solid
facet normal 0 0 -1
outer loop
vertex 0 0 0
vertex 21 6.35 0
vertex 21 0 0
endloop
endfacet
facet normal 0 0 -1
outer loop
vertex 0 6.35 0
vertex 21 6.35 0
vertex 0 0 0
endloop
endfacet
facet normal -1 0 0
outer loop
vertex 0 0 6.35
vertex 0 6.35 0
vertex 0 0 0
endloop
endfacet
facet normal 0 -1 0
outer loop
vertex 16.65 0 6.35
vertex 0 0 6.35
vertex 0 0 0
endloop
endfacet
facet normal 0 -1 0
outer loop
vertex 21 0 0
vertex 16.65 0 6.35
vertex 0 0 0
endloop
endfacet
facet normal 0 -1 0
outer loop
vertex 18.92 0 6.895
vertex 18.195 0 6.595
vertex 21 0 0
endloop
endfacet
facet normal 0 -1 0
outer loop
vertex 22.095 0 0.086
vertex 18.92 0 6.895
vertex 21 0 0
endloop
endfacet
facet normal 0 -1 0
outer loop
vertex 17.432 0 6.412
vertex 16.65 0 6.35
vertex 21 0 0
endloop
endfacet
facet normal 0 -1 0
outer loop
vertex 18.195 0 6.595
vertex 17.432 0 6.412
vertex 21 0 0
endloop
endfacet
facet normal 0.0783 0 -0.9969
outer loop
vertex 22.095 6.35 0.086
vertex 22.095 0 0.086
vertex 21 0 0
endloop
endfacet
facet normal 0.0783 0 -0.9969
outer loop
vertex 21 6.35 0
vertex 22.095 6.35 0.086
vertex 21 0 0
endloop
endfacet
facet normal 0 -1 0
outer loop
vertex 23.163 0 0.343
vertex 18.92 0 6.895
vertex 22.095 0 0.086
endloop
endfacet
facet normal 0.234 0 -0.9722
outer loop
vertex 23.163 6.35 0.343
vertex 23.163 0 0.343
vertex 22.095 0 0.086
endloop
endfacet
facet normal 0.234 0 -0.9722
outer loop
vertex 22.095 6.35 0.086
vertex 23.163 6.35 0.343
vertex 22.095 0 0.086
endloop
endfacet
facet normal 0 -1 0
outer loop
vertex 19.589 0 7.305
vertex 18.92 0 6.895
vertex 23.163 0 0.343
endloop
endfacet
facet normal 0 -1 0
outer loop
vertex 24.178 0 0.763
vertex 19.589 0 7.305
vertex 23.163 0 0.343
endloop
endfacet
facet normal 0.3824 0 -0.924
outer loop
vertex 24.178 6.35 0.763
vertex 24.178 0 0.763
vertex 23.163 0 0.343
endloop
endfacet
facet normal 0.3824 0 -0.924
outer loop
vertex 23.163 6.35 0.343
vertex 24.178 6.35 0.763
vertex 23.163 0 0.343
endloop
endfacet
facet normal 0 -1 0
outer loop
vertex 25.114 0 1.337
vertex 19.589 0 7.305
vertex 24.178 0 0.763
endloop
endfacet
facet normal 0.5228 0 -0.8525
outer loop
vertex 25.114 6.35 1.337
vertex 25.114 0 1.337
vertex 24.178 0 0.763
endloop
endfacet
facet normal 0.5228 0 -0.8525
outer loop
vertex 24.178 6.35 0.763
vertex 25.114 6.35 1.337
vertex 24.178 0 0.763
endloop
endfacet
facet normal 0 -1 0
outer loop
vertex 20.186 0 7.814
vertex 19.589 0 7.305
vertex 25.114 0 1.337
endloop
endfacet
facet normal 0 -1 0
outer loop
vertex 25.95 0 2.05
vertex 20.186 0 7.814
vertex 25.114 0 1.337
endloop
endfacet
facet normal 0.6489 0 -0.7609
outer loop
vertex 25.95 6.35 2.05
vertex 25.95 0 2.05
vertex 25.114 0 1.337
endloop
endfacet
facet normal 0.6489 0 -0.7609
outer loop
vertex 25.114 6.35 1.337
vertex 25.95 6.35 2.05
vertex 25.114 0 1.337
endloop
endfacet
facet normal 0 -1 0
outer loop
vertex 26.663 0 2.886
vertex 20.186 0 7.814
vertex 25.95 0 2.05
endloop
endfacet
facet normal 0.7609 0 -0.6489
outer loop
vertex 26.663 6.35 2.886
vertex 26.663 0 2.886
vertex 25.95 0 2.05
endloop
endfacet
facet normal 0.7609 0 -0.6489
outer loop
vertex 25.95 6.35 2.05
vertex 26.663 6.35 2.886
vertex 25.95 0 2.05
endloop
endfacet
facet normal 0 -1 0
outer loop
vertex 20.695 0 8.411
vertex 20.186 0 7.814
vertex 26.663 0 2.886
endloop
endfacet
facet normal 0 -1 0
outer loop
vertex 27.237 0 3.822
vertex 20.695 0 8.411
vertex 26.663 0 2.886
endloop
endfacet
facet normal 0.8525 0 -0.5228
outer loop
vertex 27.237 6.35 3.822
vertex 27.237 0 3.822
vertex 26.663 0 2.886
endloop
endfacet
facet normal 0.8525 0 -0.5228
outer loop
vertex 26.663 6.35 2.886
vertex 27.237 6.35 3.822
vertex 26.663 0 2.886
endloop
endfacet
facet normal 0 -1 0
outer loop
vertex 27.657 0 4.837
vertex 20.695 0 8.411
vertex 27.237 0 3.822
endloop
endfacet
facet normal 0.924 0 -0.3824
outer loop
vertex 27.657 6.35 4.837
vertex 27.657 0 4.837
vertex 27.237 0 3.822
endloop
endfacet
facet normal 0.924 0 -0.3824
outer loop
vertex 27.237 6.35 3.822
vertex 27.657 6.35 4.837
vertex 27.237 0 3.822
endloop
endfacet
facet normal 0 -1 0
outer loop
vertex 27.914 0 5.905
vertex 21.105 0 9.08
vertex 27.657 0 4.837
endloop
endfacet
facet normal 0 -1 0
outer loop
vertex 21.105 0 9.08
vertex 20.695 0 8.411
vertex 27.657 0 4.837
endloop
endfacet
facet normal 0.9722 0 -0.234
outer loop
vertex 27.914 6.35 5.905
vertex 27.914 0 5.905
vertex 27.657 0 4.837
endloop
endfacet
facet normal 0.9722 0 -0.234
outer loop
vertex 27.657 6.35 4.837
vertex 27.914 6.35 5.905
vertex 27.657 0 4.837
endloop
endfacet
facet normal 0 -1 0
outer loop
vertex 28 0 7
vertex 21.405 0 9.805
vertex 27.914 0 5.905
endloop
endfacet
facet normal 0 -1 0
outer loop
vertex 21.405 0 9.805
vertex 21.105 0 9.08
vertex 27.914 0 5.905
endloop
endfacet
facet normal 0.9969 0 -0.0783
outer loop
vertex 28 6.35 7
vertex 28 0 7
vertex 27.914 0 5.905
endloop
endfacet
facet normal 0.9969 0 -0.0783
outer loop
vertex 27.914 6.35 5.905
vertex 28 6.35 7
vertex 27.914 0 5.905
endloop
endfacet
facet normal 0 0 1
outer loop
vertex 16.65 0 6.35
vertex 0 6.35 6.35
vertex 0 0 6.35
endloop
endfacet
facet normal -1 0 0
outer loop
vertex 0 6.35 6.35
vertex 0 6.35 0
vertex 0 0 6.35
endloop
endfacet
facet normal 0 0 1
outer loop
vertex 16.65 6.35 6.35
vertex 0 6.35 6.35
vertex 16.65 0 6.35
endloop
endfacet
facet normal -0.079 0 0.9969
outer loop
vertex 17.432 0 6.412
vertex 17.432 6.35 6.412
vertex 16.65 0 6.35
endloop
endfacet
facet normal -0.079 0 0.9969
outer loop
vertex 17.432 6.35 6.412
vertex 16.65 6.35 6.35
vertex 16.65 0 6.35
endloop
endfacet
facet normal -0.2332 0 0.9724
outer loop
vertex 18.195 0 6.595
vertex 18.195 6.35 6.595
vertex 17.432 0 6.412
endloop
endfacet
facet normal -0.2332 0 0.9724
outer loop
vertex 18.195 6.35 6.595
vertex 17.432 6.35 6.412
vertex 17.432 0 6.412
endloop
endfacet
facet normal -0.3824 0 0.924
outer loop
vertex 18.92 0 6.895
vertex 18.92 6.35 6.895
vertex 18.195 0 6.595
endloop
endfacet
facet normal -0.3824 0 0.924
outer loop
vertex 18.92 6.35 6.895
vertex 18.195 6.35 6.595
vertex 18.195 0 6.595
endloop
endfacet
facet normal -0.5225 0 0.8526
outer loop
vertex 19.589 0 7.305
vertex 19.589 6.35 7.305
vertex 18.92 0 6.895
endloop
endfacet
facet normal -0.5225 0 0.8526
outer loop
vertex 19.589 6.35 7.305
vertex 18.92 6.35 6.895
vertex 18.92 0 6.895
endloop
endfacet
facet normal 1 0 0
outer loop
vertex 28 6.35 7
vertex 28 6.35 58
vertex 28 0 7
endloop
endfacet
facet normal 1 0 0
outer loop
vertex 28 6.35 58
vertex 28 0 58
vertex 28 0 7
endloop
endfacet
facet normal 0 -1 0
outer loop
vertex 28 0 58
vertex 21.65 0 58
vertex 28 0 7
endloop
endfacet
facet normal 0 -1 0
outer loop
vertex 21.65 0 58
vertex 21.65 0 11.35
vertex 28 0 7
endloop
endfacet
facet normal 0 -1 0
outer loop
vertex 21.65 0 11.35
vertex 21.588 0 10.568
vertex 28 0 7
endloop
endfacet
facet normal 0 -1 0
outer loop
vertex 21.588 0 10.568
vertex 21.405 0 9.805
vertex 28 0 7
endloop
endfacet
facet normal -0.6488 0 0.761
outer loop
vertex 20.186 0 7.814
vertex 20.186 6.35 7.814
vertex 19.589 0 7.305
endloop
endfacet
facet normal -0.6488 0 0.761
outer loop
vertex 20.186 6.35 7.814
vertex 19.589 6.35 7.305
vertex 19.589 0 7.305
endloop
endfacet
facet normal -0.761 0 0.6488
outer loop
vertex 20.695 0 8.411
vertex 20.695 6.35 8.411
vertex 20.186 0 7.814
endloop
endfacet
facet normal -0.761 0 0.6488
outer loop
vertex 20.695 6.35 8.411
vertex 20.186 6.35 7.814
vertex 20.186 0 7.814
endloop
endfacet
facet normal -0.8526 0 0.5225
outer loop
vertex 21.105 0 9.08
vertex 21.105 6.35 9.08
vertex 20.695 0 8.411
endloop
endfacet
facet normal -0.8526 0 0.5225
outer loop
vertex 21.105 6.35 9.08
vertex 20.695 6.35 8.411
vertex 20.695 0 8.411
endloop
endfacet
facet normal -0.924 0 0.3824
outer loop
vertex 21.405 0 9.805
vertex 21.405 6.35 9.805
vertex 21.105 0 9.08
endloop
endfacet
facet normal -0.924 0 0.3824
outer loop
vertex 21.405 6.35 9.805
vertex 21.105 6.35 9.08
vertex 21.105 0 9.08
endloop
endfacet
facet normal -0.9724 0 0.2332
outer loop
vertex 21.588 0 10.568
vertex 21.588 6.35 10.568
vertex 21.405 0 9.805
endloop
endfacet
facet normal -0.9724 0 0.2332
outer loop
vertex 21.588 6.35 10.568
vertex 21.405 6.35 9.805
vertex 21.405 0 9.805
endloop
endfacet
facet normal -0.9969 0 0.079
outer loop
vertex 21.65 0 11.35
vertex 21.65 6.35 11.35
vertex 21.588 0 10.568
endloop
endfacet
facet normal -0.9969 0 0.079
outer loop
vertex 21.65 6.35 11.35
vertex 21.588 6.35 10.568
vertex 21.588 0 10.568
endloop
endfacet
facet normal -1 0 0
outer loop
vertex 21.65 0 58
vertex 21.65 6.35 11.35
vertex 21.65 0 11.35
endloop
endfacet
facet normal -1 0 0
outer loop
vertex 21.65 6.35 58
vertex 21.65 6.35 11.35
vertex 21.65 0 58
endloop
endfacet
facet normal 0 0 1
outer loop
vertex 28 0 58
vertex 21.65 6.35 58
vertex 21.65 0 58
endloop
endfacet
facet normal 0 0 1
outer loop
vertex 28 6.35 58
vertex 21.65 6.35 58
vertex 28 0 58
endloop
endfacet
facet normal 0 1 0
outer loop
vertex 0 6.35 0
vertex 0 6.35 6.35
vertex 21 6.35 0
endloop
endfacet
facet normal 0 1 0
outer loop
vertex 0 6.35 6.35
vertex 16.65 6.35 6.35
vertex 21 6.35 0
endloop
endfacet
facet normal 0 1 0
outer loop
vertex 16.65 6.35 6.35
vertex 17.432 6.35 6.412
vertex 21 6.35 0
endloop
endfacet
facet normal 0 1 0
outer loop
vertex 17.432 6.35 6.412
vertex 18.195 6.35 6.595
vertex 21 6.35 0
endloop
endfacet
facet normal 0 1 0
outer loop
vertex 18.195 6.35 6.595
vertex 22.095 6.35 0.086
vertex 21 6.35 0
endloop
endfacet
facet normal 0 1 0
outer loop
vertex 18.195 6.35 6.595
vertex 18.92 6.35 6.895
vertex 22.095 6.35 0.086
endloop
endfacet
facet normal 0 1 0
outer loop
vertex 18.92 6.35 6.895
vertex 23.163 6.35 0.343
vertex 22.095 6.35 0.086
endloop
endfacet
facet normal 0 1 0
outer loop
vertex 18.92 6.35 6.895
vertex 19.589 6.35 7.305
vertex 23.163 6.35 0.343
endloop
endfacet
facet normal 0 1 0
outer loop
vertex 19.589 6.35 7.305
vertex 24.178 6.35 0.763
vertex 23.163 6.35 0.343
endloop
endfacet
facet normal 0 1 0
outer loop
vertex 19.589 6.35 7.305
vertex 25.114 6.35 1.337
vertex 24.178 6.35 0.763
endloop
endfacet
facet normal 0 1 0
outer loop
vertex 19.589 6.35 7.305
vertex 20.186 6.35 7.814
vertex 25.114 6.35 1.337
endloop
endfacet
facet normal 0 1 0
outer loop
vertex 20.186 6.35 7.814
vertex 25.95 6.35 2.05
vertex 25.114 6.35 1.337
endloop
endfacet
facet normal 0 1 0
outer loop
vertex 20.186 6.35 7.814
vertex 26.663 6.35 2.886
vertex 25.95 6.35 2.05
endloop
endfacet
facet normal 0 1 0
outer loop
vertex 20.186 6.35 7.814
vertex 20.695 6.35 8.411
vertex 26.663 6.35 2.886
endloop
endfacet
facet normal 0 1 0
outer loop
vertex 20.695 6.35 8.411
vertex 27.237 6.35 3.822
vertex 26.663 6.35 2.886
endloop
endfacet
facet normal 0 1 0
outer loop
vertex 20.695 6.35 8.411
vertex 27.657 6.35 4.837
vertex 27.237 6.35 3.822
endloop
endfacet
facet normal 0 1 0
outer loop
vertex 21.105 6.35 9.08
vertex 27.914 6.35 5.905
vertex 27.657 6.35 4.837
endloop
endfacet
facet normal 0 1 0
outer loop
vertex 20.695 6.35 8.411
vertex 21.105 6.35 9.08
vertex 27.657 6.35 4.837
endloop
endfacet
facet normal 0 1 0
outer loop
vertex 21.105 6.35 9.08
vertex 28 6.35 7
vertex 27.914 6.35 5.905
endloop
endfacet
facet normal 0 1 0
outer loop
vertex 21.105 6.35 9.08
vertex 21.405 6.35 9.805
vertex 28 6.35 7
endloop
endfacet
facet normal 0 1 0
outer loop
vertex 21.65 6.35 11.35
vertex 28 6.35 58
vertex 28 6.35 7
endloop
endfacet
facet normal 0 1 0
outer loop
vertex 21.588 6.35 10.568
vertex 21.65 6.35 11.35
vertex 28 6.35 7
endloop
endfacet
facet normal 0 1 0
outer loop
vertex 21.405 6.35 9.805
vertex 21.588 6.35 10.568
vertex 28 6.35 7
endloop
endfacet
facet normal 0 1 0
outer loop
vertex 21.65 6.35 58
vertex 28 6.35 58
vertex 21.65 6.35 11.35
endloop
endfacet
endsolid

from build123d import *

# Parameters (mm, degrees)
SKETCH9_W           = 21.65
SKETCH9_H           = 6.35
SKETCH9_W_2         = 6.35
SKETCH9_H_2         = 51.65
BOSS_EXTRUDE1_DEPTH = 6.35
FILLET2_R           = 5
FILLET3_R           = 7


with BuildPart() as part:
    # Sketch9 → Boss-Extrude1 (new body)
    with BuildSketch(Plane(origin=(0, 0, 0), x_dir=(1, 0, 0), z_dir=(0, 1, 0))):
        with Locations((10.825, -3.175)):
            Rectangle(SKETCH9_W, SKETCH9_H)
        with Locations((24.825, -3.175)):
            Rectangle(SKETCH9_W_2, SKETCH9_H)
        with Locations((24.825, -32.175)):
            Rectangle(SKETCH9_W_2, SKETCH9_H_2)
    extrude(amount=BOSS_EXTRUDE1_DEPTH)

    # Fillet2
    fillet2_edges = [part.edges().sort_by_distance(p)[0] for p in [
        (21.65, 3.175, 6.35),
    ]]
    fillet(fillet2_edges, radius=FILLET2_R)

    # Fillet3
    fillet3_edges = [part.edges().sort_by_distance(p)[0] for p in [
        (28, 3.175, 0),
    ]]
    fillet(fillet3_edges, radius=FILLET3_R)


solid = part.part
